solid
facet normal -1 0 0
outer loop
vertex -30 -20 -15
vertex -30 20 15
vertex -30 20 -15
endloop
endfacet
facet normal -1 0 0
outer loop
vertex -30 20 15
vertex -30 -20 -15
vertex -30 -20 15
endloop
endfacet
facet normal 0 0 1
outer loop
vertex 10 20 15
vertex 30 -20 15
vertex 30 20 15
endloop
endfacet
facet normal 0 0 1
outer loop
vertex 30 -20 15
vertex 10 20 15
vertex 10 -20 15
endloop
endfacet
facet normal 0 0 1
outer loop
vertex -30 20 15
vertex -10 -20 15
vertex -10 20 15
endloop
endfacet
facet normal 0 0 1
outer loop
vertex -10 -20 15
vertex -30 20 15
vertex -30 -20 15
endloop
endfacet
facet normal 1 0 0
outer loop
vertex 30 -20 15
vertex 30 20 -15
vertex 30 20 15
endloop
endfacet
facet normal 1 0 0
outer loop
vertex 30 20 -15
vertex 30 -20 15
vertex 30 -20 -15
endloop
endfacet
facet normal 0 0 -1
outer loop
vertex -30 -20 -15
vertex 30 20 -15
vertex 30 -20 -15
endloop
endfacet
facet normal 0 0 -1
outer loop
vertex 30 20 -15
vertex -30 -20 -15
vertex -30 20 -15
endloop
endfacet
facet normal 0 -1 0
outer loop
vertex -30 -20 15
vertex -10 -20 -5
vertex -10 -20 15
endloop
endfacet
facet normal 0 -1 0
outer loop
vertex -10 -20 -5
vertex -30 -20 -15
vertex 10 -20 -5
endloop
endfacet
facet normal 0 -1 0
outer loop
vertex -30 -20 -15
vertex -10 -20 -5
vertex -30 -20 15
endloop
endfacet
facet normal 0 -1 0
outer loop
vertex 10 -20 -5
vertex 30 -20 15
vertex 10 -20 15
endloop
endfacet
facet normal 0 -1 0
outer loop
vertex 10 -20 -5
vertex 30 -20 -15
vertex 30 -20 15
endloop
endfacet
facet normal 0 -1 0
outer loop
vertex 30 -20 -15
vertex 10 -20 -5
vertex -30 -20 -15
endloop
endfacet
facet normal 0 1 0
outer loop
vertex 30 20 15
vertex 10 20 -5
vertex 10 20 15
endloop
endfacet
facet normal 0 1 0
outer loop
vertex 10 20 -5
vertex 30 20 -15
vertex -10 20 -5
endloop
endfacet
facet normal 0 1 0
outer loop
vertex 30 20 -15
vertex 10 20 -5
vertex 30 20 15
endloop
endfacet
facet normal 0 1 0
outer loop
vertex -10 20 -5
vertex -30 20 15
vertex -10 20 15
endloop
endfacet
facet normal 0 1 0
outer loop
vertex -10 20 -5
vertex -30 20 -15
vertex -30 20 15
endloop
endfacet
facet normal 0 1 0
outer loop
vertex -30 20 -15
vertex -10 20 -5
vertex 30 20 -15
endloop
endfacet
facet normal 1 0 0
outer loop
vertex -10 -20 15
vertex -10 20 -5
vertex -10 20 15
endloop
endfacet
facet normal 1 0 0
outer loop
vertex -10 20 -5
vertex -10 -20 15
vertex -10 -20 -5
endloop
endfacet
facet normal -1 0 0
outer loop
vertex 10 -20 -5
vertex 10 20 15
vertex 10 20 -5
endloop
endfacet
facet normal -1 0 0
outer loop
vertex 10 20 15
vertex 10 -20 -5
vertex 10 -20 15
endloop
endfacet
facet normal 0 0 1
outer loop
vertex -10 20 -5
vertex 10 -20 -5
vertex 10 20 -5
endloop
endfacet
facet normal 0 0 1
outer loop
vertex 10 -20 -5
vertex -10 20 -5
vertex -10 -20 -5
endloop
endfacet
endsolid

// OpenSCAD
// Monitorstand


difference() {
    cube([60,40,30],center=true);
    translate([0,0,10])
    cube([20,45,30],center=true);
}
